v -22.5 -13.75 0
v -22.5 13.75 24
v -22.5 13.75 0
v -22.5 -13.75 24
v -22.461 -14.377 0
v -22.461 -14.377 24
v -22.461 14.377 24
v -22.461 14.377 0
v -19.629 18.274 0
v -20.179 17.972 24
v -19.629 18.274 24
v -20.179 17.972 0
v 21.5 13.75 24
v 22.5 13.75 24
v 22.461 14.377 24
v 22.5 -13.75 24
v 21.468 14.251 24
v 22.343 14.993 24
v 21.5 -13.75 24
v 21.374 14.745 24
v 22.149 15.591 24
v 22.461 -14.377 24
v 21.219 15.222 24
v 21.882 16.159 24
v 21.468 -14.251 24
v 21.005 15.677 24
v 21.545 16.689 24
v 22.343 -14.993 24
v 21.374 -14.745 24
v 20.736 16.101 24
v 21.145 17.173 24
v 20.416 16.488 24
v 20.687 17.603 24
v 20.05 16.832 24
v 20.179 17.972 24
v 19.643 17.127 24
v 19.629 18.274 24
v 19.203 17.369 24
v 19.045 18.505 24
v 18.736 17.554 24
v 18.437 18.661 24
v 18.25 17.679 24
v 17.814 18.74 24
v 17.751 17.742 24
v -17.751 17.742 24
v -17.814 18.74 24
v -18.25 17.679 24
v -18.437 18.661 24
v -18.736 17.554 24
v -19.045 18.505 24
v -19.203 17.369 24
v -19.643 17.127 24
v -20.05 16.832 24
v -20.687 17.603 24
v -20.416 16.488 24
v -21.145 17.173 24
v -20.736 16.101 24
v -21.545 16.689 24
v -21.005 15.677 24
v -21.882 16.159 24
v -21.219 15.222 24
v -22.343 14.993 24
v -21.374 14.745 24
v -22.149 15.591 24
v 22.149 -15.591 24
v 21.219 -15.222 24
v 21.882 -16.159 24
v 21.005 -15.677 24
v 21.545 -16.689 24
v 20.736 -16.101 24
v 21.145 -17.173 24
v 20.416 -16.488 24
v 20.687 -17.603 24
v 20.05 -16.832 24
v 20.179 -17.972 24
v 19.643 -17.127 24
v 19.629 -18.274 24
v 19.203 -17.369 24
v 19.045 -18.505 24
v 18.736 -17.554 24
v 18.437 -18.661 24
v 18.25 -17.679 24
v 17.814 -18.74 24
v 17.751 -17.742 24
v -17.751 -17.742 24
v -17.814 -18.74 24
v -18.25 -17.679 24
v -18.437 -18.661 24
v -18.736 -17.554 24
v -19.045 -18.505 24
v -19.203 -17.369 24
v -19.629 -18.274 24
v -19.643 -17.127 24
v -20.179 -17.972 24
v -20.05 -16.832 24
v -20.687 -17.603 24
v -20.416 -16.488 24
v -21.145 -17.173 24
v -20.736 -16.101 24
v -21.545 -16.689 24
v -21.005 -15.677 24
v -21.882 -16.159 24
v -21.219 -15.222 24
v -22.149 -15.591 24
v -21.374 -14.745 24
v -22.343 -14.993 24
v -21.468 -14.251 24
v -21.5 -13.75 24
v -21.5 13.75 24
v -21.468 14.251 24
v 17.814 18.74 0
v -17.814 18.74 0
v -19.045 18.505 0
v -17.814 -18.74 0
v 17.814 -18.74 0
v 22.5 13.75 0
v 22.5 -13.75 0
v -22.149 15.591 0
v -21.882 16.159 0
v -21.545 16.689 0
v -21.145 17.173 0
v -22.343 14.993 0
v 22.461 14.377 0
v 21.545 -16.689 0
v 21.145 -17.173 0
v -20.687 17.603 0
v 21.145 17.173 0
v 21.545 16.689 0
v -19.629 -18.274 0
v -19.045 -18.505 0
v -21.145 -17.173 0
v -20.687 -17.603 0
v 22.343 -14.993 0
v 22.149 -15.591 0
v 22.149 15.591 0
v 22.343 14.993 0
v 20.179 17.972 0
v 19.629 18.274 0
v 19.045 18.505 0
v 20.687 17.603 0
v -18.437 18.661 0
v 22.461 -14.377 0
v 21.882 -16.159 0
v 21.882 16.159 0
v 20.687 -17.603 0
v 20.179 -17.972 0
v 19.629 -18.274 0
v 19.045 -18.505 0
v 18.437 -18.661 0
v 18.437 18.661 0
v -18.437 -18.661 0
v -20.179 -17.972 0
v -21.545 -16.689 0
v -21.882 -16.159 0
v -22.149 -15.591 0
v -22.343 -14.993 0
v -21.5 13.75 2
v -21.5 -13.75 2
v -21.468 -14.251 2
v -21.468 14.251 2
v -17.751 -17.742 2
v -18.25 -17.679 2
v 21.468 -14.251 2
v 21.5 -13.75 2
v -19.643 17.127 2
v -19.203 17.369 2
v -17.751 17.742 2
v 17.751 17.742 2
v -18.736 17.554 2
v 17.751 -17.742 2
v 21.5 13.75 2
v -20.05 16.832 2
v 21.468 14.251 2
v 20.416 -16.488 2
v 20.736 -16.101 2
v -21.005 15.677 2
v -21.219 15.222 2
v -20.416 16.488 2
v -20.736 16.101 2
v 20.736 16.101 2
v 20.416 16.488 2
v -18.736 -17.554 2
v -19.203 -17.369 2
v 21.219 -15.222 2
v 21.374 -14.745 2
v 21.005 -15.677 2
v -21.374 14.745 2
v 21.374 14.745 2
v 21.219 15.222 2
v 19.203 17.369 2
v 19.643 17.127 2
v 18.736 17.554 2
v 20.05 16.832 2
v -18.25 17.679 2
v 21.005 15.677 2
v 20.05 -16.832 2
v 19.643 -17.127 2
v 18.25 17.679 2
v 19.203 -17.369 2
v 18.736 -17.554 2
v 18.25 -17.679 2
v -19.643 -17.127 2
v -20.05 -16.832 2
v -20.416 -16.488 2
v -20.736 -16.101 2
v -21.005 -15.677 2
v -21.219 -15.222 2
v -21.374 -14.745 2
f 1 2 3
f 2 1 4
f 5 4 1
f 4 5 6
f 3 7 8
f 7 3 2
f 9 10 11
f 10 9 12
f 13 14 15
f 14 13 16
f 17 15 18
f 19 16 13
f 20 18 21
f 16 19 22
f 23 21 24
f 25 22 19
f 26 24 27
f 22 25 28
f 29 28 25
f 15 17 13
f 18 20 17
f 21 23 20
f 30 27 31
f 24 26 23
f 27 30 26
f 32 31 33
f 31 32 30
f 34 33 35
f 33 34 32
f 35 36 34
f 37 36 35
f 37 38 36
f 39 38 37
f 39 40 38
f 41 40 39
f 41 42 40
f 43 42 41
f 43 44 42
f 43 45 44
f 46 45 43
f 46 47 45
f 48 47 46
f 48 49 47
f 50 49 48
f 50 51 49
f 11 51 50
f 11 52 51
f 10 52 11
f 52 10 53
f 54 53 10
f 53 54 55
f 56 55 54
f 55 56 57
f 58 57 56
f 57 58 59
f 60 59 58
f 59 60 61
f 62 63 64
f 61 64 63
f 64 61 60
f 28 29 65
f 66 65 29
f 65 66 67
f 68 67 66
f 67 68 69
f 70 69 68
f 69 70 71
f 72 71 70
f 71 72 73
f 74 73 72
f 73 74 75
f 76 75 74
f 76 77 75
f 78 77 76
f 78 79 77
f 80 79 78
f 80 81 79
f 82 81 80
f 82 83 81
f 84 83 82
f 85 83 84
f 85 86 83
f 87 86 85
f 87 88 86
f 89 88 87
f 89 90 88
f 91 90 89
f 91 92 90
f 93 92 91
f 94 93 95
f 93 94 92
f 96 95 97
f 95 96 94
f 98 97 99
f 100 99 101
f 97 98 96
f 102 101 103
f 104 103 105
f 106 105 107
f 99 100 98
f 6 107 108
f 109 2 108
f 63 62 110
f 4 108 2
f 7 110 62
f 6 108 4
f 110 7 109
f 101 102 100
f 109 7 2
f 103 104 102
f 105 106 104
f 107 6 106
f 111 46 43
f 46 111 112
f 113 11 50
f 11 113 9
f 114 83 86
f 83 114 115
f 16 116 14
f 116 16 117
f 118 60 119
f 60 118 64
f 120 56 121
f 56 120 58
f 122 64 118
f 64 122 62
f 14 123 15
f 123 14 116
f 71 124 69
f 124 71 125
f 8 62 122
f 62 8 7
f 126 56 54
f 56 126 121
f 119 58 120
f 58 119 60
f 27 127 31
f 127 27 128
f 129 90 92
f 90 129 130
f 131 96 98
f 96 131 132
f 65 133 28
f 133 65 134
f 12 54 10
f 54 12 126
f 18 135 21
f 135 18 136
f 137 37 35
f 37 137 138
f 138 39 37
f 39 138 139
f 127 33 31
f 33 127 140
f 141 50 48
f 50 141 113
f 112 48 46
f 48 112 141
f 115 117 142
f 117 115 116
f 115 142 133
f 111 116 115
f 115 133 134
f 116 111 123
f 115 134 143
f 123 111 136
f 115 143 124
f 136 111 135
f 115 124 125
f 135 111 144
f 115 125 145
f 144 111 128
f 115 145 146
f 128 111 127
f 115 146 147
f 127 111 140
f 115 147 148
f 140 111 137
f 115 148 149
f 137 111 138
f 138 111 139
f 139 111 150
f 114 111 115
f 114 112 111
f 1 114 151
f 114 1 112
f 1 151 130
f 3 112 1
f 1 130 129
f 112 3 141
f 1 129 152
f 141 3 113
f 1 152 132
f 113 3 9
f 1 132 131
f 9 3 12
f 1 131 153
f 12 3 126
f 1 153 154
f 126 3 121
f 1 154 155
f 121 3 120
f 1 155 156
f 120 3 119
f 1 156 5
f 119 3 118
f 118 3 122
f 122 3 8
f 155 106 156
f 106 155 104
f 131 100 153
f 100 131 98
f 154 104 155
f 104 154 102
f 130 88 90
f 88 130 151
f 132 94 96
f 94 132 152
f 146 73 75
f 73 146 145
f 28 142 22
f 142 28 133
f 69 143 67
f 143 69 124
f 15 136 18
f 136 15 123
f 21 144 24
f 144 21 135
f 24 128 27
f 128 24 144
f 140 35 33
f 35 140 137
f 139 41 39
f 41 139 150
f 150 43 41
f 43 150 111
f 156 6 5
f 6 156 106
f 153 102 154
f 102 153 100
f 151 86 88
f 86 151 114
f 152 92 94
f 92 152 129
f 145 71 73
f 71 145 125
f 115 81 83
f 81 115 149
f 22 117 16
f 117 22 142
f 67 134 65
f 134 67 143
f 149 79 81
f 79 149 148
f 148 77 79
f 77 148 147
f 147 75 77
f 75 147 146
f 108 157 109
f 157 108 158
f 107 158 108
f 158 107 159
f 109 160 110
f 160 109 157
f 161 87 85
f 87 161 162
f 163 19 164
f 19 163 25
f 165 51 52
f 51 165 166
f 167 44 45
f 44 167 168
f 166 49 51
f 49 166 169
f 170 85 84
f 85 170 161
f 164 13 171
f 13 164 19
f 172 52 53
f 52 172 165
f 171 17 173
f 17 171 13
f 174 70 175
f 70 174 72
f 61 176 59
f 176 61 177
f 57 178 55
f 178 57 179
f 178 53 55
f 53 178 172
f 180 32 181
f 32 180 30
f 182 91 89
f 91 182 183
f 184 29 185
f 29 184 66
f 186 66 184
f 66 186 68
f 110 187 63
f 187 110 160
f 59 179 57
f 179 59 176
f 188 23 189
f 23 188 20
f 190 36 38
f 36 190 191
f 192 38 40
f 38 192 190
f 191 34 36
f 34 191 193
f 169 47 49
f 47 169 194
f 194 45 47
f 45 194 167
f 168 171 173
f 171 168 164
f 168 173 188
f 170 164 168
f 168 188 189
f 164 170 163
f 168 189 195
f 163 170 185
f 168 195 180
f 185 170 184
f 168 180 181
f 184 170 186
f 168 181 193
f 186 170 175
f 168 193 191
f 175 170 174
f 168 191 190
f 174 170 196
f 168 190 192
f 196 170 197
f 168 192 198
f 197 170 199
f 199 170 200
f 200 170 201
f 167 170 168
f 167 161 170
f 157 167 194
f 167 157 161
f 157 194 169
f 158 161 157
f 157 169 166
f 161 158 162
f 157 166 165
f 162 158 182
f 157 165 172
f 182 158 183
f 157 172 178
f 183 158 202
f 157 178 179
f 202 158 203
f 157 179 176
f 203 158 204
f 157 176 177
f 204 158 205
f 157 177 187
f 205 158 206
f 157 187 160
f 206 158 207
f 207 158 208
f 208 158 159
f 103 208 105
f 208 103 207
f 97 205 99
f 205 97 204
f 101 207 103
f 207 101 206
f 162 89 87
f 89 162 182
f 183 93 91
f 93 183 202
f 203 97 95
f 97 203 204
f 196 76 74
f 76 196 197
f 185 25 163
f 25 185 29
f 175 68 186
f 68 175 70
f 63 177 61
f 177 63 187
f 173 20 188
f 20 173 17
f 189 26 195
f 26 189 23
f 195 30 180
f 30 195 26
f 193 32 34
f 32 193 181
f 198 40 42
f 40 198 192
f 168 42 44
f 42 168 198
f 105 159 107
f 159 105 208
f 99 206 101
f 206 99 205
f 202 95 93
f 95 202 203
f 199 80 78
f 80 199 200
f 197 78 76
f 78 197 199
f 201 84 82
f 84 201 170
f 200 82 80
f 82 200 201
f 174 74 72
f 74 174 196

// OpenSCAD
$fn = 50;


difference() {
	union() {
		hull() {
			translate(v = [-17.5000000000, 13.7500000000, 0]) {
				cylinder(h = 24, r = 5);
			}
			translate(v = [17.5000000000, 13.7500000000, 0]) {
				cylinder(h = 24, r = 5);
			}
			translate(v = [-17.5000000000, -13.7500000000, 0]) {
				cylinder(h = 24, r = 5);
			}
			translate(v = [17.5000000000, -13.7500000000, 0]) {
				cylinder(h = 24, r = 5);
			}
		}
	}
	union() {
		translate(v = [0, 0, 2]) {
			#hull() {
				translate(v = [-17.5000000000, 13.7500000000, 0]) {
					cylinder(h = 22, r = 4);
				}
				translate(v = [17.5000000000, 13.7500000000, 0]) {
					cylinder(h = 22, r = 4);
				}
				translate(v = [-17.5000000000, -13.7500000000, 0]) {
					cylinder(h = 22, r = 4);
				}
				translate(v = [17.5000000000, -13.7500000000, 0]) {
					cylinder(h = 22, r = 4);
				}
			}
		}
	}
}
